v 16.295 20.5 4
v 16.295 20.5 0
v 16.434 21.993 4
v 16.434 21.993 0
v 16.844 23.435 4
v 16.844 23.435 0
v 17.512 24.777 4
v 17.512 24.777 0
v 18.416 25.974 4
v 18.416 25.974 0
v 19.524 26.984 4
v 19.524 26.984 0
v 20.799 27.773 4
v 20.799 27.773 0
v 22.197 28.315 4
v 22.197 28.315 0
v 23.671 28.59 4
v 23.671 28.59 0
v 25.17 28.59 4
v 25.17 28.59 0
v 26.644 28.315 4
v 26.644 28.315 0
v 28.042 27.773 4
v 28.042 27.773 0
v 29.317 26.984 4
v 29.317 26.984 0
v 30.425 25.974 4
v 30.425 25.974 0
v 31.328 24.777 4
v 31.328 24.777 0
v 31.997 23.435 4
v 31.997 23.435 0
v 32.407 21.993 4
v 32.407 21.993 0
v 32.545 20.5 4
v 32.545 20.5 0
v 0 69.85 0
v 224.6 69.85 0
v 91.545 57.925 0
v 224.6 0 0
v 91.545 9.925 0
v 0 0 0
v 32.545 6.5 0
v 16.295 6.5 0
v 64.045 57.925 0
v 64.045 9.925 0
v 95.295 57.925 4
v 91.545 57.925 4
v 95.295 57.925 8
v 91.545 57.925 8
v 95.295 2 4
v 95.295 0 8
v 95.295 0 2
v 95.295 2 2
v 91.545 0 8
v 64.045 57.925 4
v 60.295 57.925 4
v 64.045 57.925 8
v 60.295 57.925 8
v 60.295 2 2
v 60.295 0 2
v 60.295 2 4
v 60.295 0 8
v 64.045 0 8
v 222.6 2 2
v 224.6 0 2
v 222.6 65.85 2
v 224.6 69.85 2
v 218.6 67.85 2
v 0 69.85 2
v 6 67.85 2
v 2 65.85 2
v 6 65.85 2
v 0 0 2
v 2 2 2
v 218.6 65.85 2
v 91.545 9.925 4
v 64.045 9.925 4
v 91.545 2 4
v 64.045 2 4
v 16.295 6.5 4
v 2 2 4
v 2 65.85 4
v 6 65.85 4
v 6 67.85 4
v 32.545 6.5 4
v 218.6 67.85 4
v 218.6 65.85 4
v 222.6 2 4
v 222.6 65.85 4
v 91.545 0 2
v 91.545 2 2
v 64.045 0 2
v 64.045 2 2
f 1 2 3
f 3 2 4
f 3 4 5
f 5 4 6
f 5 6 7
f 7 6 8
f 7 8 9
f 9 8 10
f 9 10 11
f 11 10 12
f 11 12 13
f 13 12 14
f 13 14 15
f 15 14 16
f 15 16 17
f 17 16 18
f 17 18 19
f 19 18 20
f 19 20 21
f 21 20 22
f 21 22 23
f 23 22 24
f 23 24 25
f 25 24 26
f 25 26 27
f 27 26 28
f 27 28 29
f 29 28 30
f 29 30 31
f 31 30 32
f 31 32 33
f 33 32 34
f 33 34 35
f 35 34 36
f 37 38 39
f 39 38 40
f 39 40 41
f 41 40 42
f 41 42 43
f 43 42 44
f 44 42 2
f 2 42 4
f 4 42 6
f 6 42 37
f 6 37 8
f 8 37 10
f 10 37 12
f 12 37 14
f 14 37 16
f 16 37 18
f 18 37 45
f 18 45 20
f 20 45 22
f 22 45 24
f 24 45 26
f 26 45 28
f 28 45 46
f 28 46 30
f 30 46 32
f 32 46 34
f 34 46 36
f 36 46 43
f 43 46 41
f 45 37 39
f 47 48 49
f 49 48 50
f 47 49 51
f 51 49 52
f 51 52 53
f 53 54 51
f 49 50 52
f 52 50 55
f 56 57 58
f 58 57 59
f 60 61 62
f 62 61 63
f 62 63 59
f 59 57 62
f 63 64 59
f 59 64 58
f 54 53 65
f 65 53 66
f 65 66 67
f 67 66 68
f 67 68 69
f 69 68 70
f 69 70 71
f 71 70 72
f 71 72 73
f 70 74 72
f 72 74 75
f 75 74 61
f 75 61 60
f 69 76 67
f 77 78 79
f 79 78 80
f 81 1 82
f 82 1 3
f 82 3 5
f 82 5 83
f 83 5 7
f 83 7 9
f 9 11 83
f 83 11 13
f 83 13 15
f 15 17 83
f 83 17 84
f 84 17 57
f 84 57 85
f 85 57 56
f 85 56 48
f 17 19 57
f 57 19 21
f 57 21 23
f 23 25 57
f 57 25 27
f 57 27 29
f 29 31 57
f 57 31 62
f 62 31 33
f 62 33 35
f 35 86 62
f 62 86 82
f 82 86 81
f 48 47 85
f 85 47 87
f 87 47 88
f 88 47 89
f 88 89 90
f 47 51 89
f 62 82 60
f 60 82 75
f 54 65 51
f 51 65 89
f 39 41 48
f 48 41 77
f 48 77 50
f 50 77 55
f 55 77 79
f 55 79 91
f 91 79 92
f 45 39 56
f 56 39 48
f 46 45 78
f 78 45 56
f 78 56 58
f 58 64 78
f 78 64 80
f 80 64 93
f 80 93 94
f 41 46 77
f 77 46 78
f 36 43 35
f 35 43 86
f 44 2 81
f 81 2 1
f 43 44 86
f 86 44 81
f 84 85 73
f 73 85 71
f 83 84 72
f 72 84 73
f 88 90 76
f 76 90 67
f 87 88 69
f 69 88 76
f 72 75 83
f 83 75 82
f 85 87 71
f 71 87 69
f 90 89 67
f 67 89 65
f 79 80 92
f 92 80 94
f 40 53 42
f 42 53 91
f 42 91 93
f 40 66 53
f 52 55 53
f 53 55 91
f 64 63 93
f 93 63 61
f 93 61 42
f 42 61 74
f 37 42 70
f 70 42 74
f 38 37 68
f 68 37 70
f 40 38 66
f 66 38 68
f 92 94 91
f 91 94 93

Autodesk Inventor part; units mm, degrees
ref_plane "YZ Plane" through (0, 0, 0) normal (1, 0, 0) x (0, 1, 0)
ref_plane "XZ Plane" through (0, 0, 0) normal (0, 1, 0) x (-1, 0, 0)
ref_plane "XY Plane" through (0, 0, 0) normal (0, 0, 1) x (1, 0, 0)
sketch "Sketch1" plane through (0, 0, 0) normal (0, 0, 1) x (1, 0, 0)
  line L0 (0, 0) -> (224.6, 0)
  line L1 (224.6, 0) -> (224.6, 69.85)
  line L2 (224.6, 69.85) -> (0, 69.85)
  line L3 (0, 69.85) -> (0, 0)
  dimension "d0" = 224.6
  dimension "d1" = 69.85
extrude "Extrusion1" add sketch "Sketch1" along normal blind 2
sketch "Sketch2" plane through (0, 0, 2) normal (0, 0, 1) x (1, 0, 0)
  line L0 (224.6, 0) -> (224.6, 69.85) projected
  line L1 (224.6, 69.85) -> (0, 69.85) projected
  line L2 (0, 69.85) -> (0, 0) projected
  line L3 (0, 0) -> (224.6, 0) projected
  line L4 (2, 67.85) -> (222.6, 67.85)
  line L5 (222.6, 67.85) -> (222.6, 2)
  line L6 (222.6, 2) -> (2, 2)
  line L7 (2, 2) -> (2, 67.85)
  dimension "d4" = 2
extrude "Extrusion2" add sketch "Sketch2" along normal blind 2 contours L4 L5 L6 L7
sketch "Sketch3" plane through (0, 0, 4) normal (0, 0, 1) x (1, 0, 0)
  line L0 (2, 2) -> (222.6, 2) construction
  line L1 (222.6, 2) -> (222.6, 67.85) construction
  line L2 (222.6, 67.85) -> (2, 67.85) construction
  line L3 (2, 67.85) -> (2, 2) construction
  line L4 (2, 67.85) -> (6, 67.85)
  line L5 (6, 67.85) -> (6, 65.85)
  line L6 (6, 65.85) -> (2, 65.85)
  line L7 (2, 65.85) -> (2, 67.85)
  line L8 (222.6, 67.85) -> (218.6, 67.85)
  line L9 (218.6, 67.85) -> (218.6, 65.85)
  line L10 (218.6, 65.85) -> (222.6, 65.85)
  line L11 (222.6, 65.85) -> (222.6, 67.85)
  point P0 (0, 0)
  dimension "d7" = 4
  dimension "d8" = 2
  dimension "d9" = 4
  dimension "d10" = 2
extrude "Extrusion3" cut sketch "Sketch3" against normal blind 2
sketch "Sketch4" plane through (0, 0, 4) normal (0, 0, 1) x (1, 0, 0)
  line L0 (6, 67.85) -> (6, 65.85) construction
  line L1 (6, 65.85) -> (2, 65.85) construction
  line L2 (2, 65.85) -> (2, 2) construction
  line L3 (2, 2) -> (222.6, 2) construction
  line L4 (222.6, 2) -> (222.6, 65.85) construction
  line L5 (222.6, 65.85) -> (218.6, 65.85) construction
  line L6 (218.6, 65.85) -> (218.6, 67.85) construction
  line L7 (218.6, 67.85) -> (6, 67.85) construction
  line L8 (2, 2) -> (24.75, 2) construction
  line L9 (24.75, 2) -> (24.75, 13.5) construction
  line L10 (24.75, 13.5) -> (2, 13.5) construction
  line L11 (2, 13.5) -> (2, 2) construction
  line L12 (16.2953, 6.5) -> (32.5453, 6.5)
  line L13 (32.5453, 6.5) -> (32.5453, 20.5)
  line L14 (32.5453, 20.5) -> (16.2953, 20.5)
  line L15 (16.2953, 20.5) -> (16.2953, 6.5)
  line L16 (16.2953, 6.5) -> (32.5453, 20.5) construction
  line L17 (32.5453, 6.5) -> (16.2953, 20.5) construction
  point P0 (0, 0)
  point P1 (24.4203, 13.5)
  dimension "d13" = 22.75
  dimension "d14" = 11.5
  dimension "d15" = 16.25
  dimension "d16" = 14
extrude "Extrusion4" cut sketch "Sketch4" against normal up to surface (4 mm away)
sketch "Sketch5" plane through (0, 0, 4) normal (0, 0, 1) x (1, 0, 0)
  line L0 (32.5453, 20.5) -> (32.5453, 6.5) construction
  line L1 (32.5453, 6.5) -> (16.2953, 6.5) construction
  line L2 (16.2953, 6.5) -> (16.2953, 20.5) construction
  line L3 (16.2953, 20.5) -> (32.5453, 20.5) construction
  line L4 (6, 67.85) -> (6, 65.85) construction
  line L5 (6, 65.85) -> (2, 65.85) construction
  line L6 (2, 65.85) -> (2, 2) construction
  line L7 (2, 2) -> (222.6, 2) construction
  line L8 (222.6, 2) -> (222.6, 65.85) construction
  line L9 (222.6, 65.85) -> (218.6, 65.85) construction
  line L10 (218.6, 65.85) -> (218.6, 67.85) construction
  line L11 (218.6, 67.85) -> (6, 67.85) construction
  line L12 (32.5453, 20.5) -> (77.7953, 20.5) construction
  line L13 (64.0453, 9.925) -> (91.5453, 9.925)
  line L14 (91.5453, 9.925) -> (91.5453, 57.925)
  line L15 (91.5453, 57.925) -> (64.0453, 57.925)
  line L16 (64.0453, 57.925) -> (64.0453, 9.925)
  line L17 (64.0453, 9.925) -> (91.5453, 57.925) construction
  line L18 (91.5453, 9.925) -> (64.0453, 57.925) construction
  line L19 (77.7953, 20.5) -> (77.7953, 33.925) construction
  point P0 (0, 0)
  dimension "d19" = 45.25
  dimension "d20" = 27.5
  dimension "d21" = 48
extrude "Extrusion5" cut sketch "Sketch5" against normal up to surface (4 mm away)
sketch "Sketch6" plane through (0, 0, 4) normal (0, 0, 1) x (1, 0, 0)
  line L0 (91.5453, 57.925) -> (91.5453, 9.925) construction
  line L1 (91.5453, 9.925) -> (64.0453, 9.925) construction
  line L2 (64.0453, 9.925) -> (64.0453, 57.925) construction
  line L3 (64.0453, 57.925) -> (91.5453, 57.925) construction
  line L4 (32.5453, 20.5) -> (32.5453, 6.5) construction
  line L5 (32.5453, 6.5) -> (16.2953, 6.5) construction
  line L6 (16.2953, 6.5) -> (16.2953, 20.5) construction
  line L7 (16.2953, 20.5) -> (32.5453, 20.5) construction
  line L8 (6, 67.85) -> (6, 65.85) construction
  line L9 (6, 65.85) -> (2, 65.85) construction
  line L10 (2, 65.85) -> (2, 2) construction
  line L11 (2, 2) -> (222.6, 2) construction
  line L12 (222.6, 2) -> (222.6, 65.85) construction
  line L13 (222.6, 65.85) -> (218.6, 65.85) construction
  line L14 (218.6, 65.85) -> (218.6, 67.85) construction
  line L15 (218.6, 67.85) -> (6, 67.85) construction
  line L16 (0, 0) -> (224.6, 0) construction
  line L17 (64.0453, 0) -> (60.2953, 0) construction
  line L18 (60.2953, 0) -> (60.2953, 57.925) construction
  line L19 (60.2953, 57.925) -> (64.0453, 57.925) construction
  line L20 (64.0453, 57.925) -> (64.0453, 0) construction
  line L21 (91.5453, 57.925) -> (95.2953, 57.925) construction
  line L22 (95.2953, 57.925) -> (95.2953, 0) construction
  line L23 (95.2953, 0) -> (91.5453, 0) construction
  line L24 (91.5453, 0) -> (91.5453, 57.925) construction
  line L25 (60.2953, 57.925) -> (64.0453, 57.925)
  line L26 (64.0453, 57.925) -> (64.0453, 0)
  line L27 (64.0453, 0) -> (60.2953, 0)
  line L28 (60.2953, 0) -> (60.2953, 57.925)
  line L29 (91.5453, 0) -> (95.2953, 0)
  line L30 (95.2953, 0) -> (95.2953, 57.925)
  line L31 (95.2953, 57.925) -> (91.5453, 57.925)
  line L32 (91.5453, 57.925) -> (91.5453, 0)
  line L33 (64.0453, 9.925) -> (64.0453, 57.925) projected
  dimension "d24" = 3.75
  dimension "d25" = 3.75
extrude "Extrusion6" add sketch "Sketch6" along normal blind 4 and the other way blind 2
sketch "Sketch7" plane through (0, 0, 4) normal (0, 0, 1) x (1, 0, 0)
  line L0 (32.5453, 20.5) -> (32.5453, 6.5) construction
  line L1 (32.5453, 6.5) -> (16.2953, 6.5) construction
  line L2 (16.2953, 6.5) -> (16.2953, 20.5) construction
  line L3 (16.2953, 20.5) -> (32.5453, 20.5) construction
  line L4 (91.5453, 57.925) -> (95.2953, 57.925) construction
  line L5 (95.2953, 57.925) -> (95.2953, 2) construction
  line L6 (95.2953, 2) -> (222.6, 2) construction
  line L7 (222.6, 2) -> (222.6, 65.85) construction
  line L8 (222.6, 65.85) -> (218.6, 65.85) construction
  line L9 (218.6, 65.85) -> (218.6, 67.85) construction
  line L10 (218.6, 67.85) -> (6, 67.85) construction
  line L11 (6, 67.85) -> (6, 65.85) construction
  line L12 (6, 65.85) -> (2, 65.85) construction
  line L13 (2, 65.85) -> (2, 2) construction
  line L14 (2, 2) -> (60.2953, 2) construction
  line L15 (60.2953, 2) -> (60.2953, 57.925) construction
  line L16 (60.2953, 57.925) -> (64.0453, 57.925) construction
  line L17 (64.0453, 57.925) -> (91.5453, 57.925) construction
  line L18 (32.5453, 6.5) -> (32.5453, 20.5) projected
  line L19 (32.5453, 20.5) -> (16.2953, 20.5) projected
  arc A0 (32.5453, 20.5) -> (16.2953, 20.5) centre (24.4203, 20.5) ccw
  line L20 (64.0453, 9.925) -> (64.0453, 2) projected
  line L21 (64.0453, 2) -> (91.5453, 2) projected
  line L22 (91.5453, 2) -> (91.5453, 9.925) projected
  line L23 (91.5453, 9.925) -> (64.0453, 9.925) projected
  point P0 (0, 0)
  dimension "d30" = 8.125
extrude "Extrusion7" cut sketch "Sketch7" against normal up to surface (4 mm away) contours L19 A0
properties part number "back"
